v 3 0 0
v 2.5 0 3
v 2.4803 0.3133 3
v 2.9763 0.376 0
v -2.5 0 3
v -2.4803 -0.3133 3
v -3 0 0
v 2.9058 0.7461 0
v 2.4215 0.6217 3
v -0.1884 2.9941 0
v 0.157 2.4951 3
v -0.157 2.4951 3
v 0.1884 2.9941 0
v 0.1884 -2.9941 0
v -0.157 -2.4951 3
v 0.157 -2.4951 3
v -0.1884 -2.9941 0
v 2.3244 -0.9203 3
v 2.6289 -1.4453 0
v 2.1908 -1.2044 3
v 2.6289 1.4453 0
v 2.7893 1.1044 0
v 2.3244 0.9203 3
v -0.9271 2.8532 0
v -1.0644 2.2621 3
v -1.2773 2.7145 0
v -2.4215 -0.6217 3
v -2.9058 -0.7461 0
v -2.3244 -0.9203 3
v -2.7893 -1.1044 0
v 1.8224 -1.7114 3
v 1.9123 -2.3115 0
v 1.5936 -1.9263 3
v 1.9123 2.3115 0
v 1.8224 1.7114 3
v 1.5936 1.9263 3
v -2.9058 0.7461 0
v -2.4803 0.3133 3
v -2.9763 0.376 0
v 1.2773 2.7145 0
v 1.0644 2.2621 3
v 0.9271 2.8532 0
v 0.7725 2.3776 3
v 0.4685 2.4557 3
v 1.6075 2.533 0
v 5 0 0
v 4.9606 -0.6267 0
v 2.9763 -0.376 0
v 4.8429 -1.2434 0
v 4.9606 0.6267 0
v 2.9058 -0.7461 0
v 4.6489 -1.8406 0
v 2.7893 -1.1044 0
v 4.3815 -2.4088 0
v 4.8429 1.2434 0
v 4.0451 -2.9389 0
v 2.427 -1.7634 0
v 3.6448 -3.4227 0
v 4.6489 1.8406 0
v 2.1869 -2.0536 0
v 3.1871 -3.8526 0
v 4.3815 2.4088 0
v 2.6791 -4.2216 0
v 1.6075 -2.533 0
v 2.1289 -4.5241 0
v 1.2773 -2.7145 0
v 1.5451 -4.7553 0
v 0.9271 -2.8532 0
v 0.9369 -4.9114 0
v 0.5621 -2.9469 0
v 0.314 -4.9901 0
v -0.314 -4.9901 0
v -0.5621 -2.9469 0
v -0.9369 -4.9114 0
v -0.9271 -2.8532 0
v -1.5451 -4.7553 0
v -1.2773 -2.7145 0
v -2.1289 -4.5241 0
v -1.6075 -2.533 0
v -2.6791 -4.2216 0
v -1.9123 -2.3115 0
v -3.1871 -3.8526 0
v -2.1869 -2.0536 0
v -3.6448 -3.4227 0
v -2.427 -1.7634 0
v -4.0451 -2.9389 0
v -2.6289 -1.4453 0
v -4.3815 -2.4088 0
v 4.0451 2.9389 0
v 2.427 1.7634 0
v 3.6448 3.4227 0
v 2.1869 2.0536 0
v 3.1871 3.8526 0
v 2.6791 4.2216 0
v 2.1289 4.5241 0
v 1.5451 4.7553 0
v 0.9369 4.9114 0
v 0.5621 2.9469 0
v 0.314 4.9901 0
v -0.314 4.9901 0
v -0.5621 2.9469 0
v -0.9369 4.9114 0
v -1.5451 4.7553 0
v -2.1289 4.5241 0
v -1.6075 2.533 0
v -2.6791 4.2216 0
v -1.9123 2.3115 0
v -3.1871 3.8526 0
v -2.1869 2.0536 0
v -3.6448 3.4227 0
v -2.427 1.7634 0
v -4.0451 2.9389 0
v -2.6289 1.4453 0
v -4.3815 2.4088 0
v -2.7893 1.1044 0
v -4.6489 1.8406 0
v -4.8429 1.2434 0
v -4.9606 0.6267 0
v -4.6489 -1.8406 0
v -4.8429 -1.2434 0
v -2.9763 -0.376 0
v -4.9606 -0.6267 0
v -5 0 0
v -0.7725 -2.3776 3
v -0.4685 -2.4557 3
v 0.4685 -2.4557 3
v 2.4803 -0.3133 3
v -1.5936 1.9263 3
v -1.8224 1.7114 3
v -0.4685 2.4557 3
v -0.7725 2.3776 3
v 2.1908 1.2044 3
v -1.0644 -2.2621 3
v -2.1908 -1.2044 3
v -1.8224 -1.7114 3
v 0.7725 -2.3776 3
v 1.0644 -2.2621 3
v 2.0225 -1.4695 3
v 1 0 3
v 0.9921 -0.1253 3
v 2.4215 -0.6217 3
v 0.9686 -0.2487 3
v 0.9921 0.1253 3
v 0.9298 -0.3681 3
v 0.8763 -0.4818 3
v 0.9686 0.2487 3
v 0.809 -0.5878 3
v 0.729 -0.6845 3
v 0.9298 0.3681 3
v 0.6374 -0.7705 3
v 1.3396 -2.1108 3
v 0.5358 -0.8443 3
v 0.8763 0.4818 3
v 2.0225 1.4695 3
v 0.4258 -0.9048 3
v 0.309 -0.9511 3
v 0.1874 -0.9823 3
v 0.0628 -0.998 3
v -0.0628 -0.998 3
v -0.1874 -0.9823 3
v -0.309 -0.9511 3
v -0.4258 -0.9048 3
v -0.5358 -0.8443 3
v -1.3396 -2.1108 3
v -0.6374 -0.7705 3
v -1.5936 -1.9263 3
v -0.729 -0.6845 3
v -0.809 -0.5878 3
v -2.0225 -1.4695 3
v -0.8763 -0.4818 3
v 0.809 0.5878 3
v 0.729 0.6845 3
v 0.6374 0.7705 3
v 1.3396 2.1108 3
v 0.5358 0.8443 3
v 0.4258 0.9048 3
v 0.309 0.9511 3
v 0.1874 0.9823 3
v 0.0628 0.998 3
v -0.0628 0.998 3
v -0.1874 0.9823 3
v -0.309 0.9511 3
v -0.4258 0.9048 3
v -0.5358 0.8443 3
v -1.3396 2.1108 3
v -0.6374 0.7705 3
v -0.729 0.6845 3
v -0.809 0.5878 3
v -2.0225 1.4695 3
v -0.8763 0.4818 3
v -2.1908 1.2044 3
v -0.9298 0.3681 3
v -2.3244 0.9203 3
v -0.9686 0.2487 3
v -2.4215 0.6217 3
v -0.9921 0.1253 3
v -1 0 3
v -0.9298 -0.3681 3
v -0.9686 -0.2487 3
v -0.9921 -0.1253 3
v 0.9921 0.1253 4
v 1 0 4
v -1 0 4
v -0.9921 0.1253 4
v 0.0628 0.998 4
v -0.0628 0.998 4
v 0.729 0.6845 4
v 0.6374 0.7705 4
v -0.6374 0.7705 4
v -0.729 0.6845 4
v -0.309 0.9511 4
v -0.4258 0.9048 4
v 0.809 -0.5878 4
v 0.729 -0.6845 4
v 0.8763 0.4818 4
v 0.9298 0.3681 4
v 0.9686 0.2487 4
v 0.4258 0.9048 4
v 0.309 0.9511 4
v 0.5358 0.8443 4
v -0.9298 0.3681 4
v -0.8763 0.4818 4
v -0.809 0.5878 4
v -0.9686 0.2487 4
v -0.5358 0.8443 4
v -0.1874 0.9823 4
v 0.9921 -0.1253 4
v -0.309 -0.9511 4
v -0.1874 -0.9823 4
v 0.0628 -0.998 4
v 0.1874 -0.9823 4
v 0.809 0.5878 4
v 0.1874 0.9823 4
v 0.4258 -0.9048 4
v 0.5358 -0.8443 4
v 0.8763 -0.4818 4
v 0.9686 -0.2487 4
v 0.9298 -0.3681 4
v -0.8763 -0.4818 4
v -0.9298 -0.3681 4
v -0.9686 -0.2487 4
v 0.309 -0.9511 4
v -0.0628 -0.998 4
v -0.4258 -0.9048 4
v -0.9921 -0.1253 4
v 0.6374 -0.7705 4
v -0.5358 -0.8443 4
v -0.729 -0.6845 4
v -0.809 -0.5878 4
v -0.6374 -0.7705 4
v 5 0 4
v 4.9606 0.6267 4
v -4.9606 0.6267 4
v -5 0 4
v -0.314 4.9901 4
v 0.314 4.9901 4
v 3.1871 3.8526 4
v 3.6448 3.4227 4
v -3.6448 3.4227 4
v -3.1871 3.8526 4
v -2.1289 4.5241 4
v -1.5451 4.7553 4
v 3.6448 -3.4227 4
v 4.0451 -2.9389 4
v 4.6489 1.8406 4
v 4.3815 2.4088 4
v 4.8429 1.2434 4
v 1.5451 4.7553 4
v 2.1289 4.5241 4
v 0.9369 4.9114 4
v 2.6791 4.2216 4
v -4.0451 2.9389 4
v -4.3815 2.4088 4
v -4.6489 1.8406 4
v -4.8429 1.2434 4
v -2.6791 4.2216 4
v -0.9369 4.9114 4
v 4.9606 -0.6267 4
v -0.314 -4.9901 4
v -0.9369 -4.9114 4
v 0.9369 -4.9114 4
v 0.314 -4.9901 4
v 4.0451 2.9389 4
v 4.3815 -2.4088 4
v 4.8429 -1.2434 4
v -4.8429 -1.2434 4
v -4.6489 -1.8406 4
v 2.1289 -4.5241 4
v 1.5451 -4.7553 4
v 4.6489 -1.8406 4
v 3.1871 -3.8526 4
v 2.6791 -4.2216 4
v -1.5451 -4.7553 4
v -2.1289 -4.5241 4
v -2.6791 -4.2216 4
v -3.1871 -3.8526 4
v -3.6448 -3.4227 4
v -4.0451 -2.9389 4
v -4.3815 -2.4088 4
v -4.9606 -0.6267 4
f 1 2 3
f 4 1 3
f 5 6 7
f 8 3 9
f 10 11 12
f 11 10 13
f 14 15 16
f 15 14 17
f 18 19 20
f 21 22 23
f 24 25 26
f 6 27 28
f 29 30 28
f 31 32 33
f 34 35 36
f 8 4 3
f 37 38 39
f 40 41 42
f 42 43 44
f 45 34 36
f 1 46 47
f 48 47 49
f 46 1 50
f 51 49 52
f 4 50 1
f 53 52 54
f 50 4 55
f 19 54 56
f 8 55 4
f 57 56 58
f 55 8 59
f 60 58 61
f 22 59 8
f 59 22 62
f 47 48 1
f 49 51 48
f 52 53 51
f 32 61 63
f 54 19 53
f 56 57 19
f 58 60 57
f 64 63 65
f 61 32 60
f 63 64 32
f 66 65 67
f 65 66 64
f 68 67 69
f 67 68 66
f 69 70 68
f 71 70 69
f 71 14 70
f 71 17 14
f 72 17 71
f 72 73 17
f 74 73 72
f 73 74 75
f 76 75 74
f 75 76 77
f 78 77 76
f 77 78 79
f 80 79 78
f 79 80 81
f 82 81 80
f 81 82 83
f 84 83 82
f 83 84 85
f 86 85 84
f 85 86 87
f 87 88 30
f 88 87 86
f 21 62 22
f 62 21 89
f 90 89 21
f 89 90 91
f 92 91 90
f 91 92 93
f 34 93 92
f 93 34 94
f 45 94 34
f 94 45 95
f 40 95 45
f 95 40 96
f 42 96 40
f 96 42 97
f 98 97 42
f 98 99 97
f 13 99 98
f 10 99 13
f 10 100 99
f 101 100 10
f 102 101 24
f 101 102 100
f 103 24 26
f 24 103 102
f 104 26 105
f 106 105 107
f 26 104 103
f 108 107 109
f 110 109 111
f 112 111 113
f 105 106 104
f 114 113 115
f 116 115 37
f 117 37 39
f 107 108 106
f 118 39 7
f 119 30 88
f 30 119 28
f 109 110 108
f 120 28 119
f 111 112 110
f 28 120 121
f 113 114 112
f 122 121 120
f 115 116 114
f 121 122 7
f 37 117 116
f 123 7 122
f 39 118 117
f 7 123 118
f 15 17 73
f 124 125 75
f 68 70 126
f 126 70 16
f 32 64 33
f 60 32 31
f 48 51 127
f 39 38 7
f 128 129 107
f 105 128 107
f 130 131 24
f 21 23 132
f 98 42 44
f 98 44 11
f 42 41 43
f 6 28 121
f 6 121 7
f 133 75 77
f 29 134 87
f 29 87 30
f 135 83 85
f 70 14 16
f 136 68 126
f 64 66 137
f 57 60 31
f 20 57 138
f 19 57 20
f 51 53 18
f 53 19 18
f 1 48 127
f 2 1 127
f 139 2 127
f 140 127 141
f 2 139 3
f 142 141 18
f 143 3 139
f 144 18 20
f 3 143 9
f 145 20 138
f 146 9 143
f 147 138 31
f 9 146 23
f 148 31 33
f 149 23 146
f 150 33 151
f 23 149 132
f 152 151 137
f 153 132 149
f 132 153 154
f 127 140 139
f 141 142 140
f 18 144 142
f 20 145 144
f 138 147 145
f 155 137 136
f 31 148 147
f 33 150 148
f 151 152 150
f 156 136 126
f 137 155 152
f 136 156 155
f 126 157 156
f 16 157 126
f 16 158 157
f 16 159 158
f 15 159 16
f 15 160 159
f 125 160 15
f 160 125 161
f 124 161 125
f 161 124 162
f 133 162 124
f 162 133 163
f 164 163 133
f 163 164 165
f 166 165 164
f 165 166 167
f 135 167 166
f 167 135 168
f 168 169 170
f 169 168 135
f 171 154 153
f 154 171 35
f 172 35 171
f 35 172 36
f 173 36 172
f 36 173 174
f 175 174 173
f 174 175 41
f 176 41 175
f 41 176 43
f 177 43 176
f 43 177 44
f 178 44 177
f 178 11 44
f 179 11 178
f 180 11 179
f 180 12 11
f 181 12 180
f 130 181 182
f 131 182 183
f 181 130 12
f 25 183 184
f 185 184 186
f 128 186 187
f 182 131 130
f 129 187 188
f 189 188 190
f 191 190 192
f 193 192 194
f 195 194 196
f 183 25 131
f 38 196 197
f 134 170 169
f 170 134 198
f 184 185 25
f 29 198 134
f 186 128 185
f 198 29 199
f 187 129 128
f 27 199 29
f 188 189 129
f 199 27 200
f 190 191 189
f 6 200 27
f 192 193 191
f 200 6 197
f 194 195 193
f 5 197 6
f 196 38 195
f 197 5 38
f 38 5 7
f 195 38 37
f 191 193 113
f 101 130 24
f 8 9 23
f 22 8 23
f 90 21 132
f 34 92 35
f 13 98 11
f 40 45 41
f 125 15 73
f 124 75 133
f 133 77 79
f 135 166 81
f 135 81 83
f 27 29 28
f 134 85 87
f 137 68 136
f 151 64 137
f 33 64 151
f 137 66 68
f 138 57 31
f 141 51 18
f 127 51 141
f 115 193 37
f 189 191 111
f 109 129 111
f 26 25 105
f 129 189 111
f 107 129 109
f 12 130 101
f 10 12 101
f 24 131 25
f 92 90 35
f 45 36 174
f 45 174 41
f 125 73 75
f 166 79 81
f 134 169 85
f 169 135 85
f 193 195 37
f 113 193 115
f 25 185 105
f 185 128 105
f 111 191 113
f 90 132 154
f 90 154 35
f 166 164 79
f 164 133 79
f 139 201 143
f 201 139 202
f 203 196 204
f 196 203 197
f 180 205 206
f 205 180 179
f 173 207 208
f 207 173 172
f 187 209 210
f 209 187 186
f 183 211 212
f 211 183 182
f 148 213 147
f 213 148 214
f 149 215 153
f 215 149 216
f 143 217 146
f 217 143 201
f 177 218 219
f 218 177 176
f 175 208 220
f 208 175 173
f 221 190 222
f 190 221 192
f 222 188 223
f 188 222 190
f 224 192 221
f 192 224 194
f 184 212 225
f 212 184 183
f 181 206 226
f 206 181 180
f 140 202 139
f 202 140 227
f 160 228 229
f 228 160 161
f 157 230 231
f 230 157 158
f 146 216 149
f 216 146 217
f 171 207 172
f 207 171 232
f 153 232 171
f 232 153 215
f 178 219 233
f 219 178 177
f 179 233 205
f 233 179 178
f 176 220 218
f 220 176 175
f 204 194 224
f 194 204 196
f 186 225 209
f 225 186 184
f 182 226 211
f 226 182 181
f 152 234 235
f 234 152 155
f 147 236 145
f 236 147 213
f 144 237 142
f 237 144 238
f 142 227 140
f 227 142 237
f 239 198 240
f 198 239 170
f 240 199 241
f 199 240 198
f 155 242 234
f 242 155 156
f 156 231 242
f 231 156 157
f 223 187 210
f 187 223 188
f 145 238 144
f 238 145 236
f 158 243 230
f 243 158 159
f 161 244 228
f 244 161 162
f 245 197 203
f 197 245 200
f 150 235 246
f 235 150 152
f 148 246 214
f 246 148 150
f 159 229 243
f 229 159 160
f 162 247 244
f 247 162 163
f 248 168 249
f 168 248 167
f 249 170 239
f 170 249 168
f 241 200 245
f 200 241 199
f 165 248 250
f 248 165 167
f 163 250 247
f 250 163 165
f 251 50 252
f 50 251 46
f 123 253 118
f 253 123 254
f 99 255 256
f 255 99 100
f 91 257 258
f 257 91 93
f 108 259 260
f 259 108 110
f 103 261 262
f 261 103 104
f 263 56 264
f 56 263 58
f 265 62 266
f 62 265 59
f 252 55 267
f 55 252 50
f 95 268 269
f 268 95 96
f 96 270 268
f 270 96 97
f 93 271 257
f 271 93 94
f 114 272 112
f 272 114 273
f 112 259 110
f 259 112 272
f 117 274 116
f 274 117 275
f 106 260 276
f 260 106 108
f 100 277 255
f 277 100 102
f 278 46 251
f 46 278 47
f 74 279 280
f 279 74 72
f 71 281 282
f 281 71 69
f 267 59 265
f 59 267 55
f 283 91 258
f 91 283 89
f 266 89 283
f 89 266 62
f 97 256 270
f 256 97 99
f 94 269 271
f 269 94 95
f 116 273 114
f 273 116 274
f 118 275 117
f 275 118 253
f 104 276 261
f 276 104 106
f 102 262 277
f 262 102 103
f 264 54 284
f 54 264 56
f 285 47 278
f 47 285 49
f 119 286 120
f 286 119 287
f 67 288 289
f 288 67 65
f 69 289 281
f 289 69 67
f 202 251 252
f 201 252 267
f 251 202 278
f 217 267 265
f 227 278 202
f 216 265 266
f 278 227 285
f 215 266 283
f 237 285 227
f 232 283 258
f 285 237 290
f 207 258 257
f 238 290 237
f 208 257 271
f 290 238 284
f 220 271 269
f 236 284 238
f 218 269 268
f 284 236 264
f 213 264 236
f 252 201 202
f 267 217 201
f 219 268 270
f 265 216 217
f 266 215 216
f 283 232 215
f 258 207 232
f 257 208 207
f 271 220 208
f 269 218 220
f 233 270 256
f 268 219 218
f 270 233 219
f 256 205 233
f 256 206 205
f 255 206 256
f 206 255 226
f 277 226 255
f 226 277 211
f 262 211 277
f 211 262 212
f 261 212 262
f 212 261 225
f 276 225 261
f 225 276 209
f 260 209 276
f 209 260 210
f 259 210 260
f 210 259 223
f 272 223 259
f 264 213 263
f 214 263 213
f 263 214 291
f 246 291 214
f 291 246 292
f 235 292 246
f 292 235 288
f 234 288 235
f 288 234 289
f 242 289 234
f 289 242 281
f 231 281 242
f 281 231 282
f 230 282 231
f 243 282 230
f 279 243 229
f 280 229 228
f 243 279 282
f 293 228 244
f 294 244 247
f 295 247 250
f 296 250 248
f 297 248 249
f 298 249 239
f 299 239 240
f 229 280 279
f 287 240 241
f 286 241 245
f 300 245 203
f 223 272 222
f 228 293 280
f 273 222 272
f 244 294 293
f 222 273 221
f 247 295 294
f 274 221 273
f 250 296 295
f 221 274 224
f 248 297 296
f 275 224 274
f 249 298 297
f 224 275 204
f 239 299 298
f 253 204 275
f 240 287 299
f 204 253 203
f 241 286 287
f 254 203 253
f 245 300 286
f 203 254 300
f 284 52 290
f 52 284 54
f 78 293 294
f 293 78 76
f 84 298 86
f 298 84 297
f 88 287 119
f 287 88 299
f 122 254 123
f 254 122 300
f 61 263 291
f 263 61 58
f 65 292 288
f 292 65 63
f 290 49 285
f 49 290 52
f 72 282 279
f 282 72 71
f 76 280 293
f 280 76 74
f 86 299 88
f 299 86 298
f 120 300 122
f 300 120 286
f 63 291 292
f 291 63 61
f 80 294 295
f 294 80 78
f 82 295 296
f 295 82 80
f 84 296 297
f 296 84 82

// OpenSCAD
$fn = 50;


difference() {
	union() {
		translate(v = [0, 0, 0]) {
			rotate(a = [0, 0, 0]) {
				cylinder(h = 4, r = 5);
			}
		}
	}
	union() {
		#translate(v = [0, 0, 0]) {
			rotate(a = [0, 0, 0]) {
				cylinder(h = 3, r1 = 3.0000000000, r2 = 2.5000000000);
			}
		}
		translate(v = [0, 0, 0]) {
			rotate(a = [0, 0, 0]) {
				translate(v = [0, 0, -50]) {
					rotate(a = [0, 0, 0]) {
						cylinder(h = 100, r = 1);
					}
				}
			}
		}
	}
}
